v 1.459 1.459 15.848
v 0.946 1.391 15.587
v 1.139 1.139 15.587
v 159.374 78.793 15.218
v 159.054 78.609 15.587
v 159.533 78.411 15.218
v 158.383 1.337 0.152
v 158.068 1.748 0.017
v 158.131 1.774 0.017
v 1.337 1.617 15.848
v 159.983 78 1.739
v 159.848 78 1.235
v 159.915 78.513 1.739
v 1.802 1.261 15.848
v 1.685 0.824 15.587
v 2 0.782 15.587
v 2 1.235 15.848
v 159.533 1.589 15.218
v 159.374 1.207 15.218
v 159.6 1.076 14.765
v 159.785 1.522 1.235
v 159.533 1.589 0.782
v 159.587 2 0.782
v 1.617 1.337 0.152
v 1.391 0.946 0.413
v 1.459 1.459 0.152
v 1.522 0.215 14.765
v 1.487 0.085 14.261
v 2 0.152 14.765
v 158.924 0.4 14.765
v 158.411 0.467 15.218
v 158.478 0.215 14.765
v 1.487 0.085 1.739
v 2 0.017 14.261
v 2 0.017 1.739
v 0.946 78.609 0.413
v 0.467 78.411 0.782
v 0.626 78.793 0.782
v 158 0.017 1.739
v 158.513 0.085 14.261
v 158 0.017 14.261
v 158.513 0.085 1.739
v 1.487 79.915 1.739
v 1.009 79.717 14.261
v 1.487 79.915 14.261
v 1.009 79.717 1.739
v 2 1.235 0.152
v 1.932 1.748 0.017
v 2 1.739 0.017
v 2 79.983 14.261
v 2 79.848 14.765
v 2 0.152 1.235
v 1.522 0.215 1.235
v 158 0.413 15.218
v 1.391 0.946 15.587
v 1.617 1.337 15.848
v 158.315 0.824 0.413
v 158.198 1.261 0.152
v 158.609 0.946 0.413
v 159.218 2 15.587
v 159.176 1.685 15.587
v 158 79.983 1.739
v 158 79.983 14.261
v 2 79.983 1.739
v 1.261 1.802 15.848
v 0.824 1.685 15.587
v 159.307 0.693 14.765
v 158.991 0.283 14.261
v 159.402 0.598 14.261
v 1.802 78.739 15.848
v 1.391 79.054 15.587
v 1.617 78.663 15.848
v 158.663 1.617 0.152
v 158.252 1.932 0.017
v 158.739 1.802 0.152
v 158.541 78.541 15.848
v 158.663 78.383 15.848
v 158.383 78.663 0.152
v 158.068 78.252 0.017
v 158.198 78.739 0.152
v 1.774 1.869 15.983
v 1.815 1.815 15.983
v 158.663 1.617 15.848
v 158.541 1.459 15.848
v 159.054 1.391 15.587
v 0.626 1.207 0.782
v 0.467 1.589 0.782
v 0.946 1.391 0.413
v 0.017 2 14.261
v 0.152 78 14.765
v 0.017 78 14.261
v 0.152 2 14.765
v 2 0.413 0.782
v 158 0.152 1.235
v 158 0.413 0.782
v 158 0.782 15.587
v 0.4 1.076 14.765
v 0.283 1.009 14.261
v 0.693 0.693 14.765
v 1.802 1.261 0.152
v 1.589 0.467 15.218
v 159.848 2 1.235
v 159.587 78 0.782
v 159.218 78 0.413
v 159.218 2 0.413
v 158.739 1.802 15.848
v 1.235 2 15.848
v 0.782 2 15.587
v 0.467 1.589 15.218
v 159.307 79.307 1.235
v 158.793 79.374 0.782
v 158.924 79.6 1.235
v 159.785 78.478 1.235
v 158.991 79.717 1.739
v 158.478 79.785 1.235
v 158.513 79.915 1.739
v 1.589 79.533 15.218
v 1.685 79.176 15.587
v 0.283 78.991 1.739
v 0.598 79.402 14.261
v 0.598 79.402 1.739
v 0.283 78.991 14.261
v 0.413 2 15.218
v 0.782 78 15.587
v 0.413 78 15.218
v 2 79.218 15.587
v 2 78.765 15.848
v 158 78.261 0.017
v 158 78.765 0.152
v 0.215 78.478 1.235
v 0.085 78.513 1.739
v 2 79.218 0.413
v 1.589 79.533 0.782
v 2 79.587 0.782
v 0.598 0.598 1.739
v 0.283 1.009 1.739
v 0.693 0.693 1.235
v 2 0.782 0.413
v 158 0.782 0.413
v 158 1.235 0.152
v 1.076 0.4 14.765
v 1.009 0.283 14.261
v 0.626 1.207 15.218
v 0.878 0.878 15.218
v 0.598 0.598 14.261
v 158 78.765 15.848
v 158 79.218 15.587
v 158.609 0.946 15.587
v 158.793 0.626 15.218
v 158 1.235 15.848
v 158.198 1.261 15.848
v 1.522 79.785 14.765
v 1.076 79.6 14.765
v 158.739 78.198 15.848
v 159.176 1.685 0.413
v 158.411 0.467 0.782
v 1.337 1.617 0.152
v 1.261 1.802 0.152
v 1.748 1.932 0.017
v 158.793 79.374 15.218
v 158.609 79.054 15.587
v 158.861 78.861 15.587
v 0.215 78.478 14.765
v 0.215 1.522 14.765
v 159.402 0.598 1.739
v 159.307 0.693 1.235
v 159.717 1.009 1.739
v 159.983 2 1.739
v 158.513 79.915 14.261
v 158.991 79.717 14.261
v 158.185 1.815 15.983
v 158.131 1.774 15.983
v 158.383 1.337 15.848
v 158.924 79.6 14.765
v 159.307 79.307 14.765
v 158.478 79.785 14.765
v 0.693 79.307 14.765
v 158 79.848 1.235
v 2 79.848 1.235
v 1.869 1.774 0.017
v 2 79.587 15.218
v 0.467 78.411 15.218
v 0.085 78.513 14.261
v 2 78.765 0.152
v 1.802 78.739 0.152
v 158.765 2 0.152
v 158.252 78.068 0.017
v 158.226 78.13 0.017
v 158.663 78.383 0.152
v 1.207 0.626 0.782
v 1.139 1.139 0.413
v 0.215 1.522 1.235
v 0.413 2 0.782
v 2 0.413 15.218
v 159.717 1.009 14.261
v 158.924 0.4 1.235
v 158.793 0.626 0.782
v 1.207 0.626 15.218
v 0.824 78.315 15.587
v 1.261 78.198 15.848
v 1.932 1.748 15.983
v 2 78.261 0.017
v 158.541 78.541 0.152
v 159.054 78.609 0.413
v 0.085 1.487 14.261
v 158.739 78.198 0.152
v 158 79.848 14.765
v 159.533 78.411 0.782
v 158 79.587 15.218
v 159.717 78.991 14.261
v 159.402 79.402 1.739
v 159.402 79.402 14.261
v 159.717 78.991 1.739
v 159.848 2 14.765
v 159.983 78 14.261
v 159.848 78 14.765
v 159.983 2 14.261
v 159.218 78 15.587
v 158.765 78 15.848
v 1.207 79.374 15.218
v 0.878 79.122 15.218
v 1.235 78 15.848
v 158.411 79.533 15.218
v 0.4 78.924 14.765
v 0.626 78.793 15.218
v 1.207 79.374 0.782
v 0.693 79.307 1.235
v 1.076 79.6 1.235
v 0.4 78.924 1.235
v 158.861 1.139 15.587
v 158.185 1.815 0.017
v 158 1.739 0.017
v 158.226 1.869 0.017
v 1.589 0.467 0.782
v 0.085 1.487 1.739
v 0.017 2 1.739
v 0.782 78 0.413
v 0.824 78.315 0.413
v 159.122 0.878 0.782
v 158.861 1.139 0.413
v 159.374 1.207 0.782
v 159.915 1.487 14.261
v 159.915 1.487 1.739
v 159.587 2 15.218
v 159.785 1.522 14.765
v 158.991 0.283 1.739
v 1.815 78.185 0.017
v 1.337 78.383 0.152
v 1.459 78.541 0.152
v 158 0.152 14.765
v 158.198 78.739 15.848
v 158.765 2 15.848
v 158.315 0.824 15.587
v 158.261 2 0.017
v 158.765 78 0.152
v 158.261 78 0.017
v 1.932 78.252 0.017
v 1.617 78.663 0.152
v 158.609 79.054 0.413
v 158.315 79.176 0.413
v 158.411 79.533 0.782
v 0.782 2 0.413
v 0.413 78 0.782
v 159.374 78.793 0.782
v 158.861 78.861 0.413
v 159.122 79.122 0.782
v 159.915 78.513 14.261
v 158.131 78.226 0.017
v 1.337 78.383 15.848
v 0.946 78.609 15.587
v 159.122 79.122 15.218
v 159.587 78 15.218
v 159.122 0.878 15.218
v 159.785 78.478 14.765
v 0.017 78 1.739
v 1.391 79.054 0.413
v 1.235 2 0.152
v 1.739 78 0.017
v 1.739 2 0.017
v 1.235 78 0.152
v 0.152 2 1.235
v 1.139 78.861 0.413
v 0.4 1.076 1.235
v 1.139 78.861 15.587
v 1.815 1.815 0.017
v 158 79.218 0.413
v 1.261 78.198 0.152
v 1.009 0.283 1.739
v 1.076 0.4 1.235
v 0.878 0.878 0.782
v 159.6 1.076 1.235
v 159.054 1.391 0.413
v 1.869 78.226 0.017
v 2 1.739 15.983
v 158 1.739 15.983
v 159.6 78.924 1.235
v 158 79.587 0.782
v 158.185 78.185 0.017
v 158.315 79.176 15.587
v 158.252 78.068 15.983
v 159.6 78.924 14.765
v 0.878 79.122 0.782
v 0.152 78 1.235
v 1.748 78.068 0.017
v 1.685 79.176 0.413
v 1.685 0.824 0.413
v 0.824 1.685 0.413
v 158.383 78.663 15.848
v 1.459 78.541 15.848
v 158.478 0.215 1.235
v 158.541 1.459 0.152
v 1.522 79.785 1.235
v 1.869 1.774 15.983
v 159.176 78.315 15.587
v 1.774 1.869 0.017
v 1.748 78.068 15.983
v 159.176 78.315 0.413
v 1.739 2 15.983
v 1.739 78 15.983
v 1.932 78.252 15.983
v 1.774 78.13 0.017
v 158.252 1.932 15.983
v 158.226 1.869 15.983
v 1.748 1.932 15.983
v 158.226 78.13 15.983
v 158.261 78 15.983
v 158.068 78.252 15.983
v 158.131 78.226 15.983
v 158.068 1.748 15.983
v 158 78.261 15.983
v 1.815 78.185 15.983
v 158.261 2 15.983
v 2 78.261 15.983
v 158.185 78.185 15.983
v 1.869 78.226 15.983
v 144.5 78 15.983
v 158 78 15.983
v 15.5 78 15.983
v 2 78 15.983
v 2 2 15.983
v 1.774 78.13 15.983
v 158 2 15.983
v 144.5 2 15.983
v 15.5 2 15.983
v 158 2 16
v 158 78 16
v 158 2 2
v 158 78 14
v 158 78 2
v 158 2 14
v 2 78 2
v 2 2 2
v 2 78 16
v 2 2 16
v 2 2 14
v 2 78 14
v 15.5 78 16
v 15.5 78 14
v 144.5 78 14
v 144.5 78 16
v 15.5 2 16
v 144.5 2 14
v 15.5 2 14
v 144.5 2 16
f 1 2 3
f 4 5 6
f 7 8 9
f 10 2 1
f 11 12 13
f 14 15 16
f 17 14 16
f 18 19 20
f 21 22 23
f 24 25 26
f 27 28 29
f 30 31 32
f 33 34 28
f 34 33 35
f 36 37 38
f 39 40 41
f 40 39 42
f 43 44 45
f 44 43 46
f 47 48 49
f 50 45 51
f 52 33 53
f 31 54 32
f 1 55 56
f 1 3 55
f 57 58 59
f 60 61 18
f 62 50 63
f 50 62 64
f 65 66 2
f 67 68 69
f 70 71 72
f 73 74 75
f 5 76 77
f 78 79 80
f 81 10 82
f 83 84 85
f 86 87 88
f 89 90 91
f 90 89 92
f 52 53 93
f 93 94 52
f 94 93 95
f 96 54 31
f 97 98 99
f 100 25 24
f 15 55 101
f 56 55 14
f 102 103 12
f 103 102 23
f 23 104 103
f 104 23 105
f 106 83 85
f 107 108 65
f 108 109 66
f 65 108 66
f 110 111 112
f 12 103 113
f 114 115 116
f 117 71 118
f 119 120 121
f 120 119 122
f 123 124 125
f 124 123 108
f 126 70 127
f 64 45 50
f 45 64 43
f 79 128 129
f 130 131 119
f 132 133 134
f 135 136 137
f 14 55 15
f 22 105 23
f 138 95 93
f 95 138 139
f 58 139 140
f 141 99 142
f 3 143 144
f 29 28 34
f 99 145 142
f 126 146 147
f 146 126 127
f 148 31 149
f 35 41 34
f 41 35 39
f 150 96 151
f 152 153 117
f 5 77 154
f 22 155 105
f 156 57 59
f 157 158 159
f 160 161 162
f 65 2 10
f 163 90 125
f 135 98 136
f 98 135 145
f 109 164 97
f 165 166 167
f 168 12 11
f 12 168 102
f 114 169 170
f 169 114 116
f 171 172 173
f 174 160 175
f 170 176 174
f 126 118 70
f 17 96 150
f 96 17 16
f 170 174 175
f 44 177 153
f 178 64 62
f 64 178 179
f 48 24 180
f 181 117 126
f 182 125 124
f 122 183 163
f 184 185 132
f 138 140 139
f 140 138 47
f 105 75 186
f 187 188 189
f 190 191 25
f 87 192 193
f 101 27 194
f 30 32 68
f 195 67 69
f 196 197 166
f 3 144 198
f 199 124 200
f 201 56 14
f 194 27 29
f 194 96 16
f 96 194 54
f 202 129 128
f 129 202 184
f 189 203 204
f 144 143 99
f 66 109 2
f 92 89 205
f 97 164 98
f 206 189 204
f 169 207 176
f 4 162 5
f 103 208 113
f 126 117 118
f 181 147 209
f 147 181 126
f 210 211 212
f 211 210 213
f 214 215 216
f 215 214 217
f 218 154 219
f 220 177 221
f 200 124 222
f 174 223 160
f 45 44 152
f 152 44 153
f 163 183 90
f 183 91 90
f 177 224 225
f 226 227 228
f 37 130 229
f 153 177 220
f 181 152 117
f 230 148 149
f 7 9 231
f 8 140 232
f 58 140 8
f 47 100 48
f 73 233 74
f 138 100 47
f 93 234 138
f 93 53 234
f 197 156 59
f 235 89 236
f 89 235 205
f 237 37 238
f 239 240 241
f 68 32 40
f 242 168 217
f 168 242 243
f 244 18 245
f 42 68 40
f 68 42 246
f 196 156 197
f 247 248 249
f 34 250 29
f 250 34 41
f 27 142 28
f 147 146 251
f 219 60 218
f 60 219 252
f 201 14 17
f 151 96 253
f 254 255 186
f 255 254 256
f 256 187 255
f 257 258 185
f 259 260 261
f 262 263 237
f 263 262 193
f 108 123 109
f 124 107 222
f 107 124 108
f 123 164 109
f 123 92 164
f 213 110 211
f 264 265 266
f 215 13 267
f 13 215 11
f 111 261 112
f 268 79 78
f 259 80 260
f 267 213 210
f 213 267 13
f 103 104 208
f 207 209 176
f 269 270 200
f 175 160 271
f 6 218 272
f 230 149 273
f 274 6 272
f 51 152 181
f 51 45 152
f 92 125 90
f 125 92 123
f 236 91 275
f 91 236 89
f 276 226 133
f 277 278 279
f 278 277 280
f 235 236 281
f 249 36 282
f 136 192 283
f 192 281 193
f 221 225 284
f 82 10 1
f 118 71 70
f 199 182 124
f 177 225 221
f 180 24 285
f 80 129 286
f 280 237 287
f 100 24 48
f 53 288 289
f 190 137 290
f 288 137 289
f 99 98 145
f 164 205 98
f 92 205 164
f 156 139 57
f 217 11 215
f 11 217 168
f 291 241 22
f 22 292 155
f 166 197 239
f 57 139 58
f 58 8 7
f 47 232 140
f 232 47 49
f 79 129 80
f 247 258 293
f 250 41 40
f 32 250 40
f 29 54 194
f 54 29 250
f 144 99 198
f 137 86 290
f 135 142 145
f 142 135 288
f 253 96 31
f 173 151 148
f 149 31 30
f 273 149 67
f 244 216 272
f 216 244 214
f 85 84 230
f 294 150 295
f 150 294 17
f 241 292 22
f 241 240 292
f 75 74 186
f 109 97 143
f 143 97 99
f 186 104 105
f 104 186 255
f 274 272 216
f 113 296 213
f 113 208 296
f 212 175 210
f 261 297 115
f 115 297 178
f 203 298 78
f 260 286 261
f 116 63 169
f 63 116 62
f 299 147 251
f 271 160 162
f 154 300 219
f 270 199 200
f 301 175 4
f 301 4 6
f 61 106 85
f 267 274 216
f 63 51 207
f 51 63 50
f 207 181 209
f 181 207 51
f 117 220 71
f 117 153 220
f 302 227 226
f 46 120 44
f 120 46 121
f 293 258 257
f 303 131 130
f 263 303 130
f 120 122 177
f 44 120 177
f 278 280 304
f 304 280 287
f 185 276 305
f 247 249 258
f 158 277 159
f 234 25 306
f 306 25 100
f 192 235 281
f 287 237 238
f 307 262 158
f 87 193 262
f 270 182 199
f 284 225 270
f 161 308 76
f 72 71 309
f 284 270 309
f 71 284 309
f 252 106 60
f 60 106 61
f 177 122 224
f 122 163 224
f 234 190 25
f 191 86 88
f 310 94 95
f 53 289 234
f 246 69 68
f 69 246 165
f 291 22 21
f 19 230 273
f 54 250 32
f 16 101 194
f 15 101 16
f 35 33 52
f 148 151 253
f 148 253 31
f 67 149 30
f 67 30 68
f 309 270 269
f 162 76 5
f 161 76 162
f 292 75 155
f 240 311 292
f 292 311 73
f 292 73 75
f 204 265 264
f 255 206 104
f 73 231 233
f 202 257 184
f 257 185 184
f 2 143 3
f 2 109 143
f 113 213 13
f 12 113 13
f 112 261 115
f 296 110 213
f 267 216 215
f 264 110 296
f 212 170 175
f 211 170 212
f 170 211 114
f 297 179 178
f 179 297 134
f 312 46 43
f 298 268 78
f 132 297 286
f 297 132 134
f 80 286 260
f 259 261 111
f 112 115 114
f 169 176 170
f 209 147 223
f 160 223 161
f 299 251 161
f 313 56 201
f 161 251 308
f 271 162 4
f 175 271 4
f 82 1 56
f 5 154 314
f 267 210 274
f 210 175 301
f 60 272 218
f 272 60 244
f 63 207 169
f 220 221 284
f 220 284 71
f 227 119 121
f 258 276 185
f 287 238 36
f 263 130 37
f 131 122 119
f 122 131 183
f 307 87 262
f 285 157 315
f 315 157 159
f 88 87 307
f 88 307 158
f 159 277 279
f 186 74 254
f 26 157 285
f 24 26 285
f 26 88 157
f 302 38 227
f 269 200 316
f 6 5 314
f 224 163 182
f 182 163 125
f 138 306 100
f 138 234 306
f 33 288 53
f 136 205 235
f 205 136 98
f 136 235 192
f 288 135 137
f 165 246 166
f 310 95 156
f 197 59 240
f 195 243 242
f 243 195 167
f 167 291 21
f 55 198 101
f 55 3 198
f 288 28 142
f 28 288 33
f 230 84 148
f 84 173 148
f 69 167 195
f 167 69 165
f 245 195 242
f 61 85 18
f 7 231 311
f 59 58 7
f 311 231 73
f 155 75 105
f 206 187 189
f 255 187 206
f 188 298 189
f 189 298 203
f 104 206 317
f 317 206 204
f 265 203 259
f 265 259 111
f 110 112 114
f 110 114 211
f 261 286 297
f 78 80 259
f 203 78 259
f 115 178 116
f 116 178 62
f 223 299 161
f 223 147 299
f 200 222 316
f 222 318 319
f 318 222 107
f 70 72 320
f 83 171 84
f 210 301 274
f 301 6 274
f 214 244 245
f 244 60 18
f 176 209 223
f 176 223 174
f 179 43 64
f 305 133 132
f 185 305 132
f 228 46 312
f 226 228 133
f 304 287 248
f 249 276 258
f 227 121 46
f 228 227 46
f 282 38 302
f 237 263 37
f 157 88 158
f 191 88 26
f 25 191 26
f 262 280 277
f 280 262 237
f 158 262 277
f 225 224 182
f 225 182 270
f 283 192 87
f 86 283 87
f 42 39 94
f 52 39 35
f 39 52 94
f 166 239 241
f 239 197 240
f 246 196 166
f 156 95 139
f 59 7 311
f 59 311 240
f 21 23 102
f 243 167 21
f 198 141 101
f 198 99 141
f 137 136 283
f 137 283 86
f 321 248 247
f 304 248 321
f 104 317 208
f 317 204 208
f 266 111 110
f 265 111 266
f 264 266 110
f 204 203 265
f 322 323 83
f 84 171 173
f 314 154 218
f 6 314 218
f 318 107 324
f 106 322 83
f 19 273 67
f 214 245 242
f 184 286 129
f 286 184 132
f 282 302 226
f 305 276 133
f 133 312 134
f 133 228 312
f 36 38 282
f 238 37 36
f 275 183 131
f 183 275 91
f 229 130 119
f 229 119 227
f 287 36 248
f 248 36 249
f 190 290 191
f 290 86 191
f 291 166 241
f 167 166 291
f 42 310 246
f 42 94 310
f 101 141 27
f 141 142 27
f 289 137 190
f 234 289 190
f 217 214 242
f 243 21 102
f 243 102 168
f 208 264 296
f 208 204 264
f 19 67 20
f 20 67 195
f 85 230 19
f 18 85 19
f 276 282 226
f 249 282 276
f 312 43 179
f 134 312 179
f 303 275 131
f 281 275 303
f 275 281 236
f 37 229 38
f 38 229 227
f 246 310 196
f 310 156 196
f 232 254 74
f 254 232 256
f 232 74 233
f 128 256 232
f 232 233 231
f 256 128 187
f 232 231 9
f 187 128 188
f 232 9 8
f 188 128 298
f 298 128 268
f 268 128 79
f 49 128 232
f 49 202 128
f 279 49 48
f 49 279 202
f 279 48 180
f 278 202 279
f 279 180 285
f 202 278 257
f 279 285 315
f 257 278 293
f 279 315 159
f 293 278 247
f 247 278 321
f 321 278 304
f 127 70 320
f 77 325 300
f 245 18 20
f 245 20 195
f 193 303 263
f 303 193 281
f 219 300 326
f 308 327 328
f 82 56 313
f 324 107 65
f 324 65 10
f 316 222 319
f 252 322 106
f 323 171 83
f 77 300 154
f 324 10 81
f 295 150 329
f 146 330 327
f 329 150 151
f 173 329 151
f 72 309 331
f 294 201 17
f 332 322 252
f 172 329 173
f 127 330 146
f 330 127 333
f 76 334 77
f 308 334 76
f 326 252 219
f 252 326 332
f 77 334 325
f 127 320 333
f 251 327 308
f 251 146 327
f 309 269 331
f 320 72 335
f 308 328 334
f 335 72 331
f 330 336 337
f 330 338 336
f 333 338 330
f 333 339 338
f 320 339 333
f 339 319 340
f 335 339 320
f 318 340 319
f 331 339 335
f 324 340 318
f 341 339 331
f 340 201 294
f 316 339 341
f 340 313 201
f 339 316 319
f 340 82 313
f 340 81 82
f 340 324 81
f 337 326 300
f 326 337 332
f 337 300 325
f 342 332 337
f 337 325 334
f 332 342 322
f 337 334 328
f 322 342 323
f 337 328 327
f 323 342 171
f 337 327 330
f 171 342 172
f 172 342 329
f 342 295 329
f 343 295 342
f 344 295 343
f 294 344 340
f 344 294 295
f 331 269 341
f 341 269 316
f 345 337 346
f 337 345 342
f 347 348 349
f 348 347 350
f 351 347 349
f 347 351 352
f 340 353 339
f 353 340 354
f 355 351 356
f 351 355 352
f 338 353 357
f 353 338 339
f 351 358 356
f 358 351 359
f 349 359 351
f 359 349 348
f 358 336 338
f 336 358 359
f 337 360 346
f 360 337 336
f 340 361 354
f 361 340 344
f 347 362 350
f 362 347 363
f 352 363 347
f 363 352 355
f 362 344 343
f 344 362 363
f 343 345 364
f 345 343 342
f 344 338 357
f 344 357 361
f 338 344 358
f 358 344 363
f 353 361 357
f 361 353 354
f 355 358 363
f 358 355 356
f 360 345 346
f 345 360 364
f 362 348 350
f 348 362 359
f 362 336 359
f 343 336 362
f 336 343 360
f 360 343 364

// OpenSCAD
box_count = 2;
box_width = 80;
width = box_count * box_width;
depth = 80;
base_thickness = 2;
border_width = 2;
border_depth = 16;
tape_pad_width = 13.5;
tape_pad_thickness = 2;
tape_recess_depth = 0;
tape_margin = border_width;
tape_inset = border_width;
corner_radius = 2;
$fn = 24;

module rounded_box(size, radius) {
  translate([radius, radius, radius])
    minkowski() {
      cube([
        size[0] - 2 * radius,
        size[1] - 2 * radius,
        size[2] - 2 * radius
      ]);
      sphere(radius);
    }
}

union() {
  difference() {
    rounded_box([width, depth, border_depth], corner_radius);

    translate([border_width, border_width, base_thickness])
      cube([
        width - 2 * border_width,
        depth - 2 * border_width,
        border_depth - base_thickness + 1
      ]);
  }

  translate([
    tape_inset,
    tape_margin,
    border_depth - tape_recess_depth - tape_pad_thickness
  ])
    cube([
      tape_pad_width,
      depth - 2 * tape_margin,
      tape_pad_thickness
    ]);

  translate([
    width - tape_inset - tape_pad_width,
    tape_margin,
    border_depth - tape_recess_depth - tape_pad_thickness
  ])
    cube([
      tape_pad_width,
      depth - 2 * tape_margin,
      tape_pad_thickness
    ]);
}
